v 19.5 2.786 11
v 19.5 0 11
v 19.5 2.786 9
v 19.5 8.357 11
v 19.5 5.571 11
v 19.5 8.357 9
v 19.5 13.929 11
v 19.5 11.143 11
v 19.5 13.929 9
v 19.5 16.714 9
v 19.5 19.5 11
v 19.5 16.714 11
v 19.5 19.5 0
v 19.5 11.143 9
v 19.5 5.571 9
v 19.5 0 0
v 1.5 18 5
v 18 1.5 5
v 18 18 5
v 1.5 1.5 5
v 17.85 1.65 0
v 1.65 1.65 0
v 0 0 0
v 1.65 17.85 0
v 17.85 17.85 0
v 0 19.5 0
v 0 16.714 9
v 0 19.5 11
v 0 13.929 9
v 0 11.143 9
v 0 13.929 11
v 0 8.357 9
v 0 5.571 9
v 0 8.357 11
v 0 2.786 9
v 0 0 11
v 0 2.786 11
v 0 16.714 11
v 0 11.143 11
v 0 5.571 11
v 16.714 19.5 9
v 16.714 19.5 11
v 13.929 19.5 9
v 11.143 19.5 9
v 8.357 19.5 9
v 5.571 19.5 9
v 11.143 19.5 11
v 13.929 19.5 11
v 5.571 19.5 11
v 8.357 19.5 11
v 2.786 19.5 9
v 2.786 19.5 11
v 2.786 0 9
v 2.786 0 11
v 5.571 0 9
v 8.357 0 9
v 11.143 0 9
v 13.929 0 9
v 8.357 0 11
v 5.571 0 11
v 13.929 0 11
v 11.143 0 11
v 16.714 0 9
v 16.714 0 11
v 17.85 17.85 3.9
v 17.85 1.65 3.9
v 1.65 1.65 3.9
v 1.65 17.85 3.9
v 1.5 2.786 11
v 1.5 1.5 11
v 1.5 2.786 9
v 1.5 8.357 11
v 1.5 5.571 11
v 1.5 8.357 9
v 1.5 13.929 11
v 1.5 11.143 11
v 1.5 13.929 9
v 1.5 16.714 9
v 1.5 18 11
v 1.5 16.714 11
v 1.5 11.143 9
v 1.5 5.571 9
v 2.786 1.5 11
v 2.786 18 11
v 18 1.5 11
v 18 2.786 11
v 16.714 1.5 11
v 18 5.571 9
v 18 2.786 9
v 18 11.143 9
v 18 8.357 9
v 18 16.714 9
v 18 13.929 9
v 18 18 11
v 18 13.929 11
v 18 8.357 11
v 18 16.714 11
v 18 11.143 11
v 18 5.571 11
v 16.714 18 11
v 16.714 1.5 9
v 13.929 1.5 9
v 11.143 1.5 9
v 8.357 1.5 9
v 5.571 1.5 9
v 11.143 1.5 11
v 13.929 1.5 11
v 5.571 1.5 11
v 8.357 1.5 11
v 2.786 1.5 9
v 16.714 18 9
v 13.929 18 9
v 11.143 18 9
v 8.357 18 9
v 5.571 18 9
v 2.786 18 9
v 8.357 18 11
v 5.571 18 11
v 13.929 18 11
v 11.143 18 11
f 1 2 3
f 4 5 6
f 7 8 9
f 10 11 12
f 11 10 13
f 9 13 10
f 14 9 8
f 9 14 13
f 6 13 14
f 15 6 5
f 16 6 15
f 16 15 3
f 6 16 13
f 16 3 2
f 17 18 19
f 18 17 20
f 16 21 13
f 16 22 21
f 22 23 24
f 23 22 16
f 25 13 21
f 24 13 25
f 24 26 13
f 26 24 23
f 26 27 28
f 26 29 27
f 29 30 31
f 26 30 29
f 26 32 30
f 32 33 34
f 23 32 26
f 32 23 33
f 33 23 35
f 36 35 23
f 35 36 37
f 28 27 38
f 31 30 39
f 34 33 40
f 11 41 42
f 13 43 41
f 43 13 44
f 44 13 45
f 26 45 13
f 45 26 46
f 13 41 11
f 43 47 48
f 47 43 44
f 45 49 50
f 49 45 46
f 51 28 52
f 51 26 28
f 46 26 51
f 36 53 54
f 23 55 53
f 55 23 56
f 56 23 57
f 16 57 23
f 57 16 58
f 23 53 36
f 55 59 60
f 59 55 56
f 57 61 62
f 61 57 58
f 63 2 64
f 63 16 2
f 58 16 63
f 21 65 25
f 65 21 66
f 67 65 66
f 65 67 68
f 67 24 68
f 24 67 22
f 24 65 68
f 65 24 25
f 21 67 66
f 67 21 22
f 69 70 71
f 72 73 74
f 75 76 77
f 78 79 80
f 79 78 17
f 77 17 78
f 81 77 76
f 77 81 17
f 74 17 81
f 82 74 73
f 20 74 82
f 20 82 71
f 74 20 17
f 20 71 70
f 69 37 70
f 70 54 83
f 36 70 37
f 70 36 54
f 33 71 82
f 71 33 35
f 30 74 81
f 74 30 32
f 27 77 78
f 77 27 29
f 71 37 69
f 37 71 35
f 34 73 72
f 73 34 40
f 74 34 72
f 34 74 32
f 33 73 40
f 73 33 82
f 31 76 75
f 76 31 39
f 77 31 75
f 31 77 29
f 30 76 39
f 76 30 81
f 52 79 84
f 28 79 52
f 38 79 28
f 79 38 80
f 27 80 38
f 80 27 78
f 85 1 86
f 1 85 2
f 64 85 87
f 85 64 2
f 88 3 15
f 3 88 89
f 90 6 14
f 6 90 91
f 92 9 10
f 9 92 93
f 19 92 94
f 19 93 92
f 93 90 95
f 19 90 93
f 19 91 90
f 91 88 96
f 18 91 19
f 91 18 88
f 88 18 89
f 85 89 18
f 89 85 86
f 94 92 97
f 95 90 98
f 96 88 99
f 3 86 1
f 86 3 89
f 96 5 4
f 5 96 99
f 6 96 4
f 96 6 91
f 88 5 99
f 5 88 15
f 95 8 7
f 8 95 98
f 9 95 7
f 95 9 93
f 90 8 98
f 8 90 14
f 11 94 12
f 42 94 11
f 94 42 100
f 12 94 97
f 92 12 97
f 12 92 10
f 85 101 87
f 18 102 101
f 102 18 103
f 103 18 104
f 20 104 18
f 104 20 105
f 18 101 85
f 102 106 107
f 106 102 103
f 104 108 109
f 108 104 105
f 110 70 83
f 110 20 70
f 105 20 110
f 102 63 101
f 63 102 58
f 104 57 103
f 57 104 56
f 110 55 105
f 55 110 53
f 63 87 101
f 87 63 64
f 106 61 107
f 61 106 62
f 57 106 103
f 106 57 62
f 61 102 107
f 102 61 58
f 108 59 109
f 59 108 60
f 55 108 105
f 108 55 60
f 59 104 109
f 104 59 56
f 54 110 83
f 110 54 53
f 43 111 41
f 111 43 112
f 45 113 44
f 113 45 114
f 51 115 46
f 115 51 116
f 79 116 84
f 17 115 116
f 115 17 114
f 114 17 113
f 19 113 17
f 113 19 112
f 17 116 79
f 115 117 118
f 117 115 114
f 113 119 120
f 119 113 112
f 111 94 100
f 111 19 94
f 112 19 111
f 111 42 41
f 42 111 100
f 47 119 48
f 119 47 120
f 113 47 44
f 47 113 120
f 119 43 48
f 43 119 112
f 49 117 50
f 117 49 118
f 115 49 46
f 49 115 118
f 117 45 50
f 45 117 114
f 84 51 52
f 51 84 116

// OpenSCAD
// file: CommonModules.scad
//    $$$$$$\   $$$$$$\   $$$$$$\  $$\   $$\ $$$$$$\ $$$$$$$\  $$$$$$$$\ 
//    $$  __$$\ $$  __$$\ $$  __$$\ $$ |  $$ |\_$$  _|$$  __$$\ $$  _____|
//    $$ /  $$ |$$ /  \__|$$ /  $$ |$$ |  $$ |  $$ |  $$ |  $$ |$$ |      
//    $$$$$$$$ |$$ |      $$ |  $$ |$$ |  $$ |  $$ |  $$$$$$$  |$$$$$\    
//    $$  __$$ |$$ |      $$ |  $$ |$$ |  $$ |  $$ |  $$  __$$< $$  __|   
//    $$ |  $$ |$$ |  $$\ $$ $$\$$ |$$ |  $$ |  $$ |  $$ |  $$ |$$ |      
//    $$ |  $$ |\$$$$$$  |\$$$$$$ / \$$$$$$  |$$$$$$\ $$ |  $$ |$$$$$$$$\ 
//    \__|  \__| \______/  \___$$$\  \______/ \______|\__|  \__|\________|
//                            \___|                                      
//      
//       Print and play - OpenScad project - by Bekkalizer - GPLv3
// 
// This file is part of the Acquire stl project.
// Copyright (C) 2025 Bekkalizer
//
// Acquire stl project is free software: you can redistribute it and/or modify
// it under the terms of the GNU General Public License as published
// by the Free Software Foundation, either version 3 of the License,
// or (at your option) any later version.
//
// Acquire stl project is distributed in the hope that it will be useful,
// but WITHOUT ANY WARRANTY; without even the implied warranty of
// MERCHANTABILITY or FITNESS FOR A PARTICULAR PURPOSE. See the
// GNU General Public License for more details.
//
// You should have received a copy of the GNU General Public License
// along with this program. If not, see <https://www.gnu.org/licenses/>.

module cube_with_extruded_bottom( cube_size = [19.5, 19.5, 5] ) {
    //Main build script parameters:
    max_width = 19.2;
    top_lip = 2;
    top_height = 3;
    //Calculated hole size:
    inside_margins = 1;
    hole_width = max_width - 2 * (top_lip) + inside_margins;
    hole_height = top_height + inside_margins;
    
    hole_size = [hole_width, hole_width, hole_height]; // Hole dimensions (same height as cube)
    hole_offset = [(cube_size[0] - hole_size[0]) / 2, (cube_size[1] - hole_size[1]) / 2, -0.1]; // Centered on bottom
    difference() {
        // Main Cube
        cube(cube_size);
        
        // Hole Cube (subtracting from bottom)
        translate(hole_offset)
            cube(hole_size);
    }
}
// main file
//    $$$$$$\   $$$$$$\   $$$$$$\  $$\   $$\ $$$$$$\ $$$$$$$\  $$$$$$$$\ 
//    $$  __$$\ $$  __$$\ $$  __$$\ $$ |  $$ |\_$$  _|$$  __$$\ $$  _____|
//    $$ /  $$ |$$ /  \__|$$ /  $$ |$$ |  $$ |  $$ |  $$ |  $$ |$$ |      
//    $$$$$$$$ |$$ |      $$ |  $$ |$$ |  $$ |  $$ |  $$$$$$$  |$$$$$\    
//    $$  __$$ |$$ |      $$ |  $$ |$$ |  $$ |  $$ |  $$  __$$< $$  __|   
//    $$ |  $$ |$$ |  $$\ $$ $$\$$ |$$ |  $$ |  $$ |  $$ |  $$ |$$ |      
//    $$ |  $$ |\$$$$$$  |\$$$$$$ / \$$$$$$  |$$$$$$\ $$ |  $$ |$$$$$$$$\ 
//    \__|  \__| \______/  \___$$$\  \______/ \______|\__|  \__|\________|
//                            \___|                                      
//      
//       Print and play - OpenScad project - by Bekkalizer - GPLv3
// 
// This file is part of the Acquire stl project.
// Copyright (C) 2025 Bekkalizer
//
// Acquire stl project is free software: you can redistribute it and/or modify
// it under the terms of the GNU General Public License as published
// by the Free Software Foundation, either version 3 of the License,
// or (at your option) any later version.
//
// Acquire stl project is distributed in the hope that it will be useful,
// but WITHOUT ANY WARRANTY; without even the implied warranty of
// MERCHANTABILITY or FITNESS FOR A PARTICULAR PURPOSE. See the
// GNU General Public License for more details.
//
// You should have received a copy of the GNU General Public License
// along with this program. If not, see <https://www.gnu.org/licenses/>.

use <CommonModules.scad>

// ============== Parameters ==============
bottom_width = 19.5;
bottom_height = 5;
wall_width = 1.5;
wall_height = 4;
segments = 3;
segment_height = 2;

module castle_top() {
    cube([wall_width,bottom_width,wall_height]);
    segment_width = bottom_width / (segments * 2 +1);
    translate([0,0,wall_height]) {
        for( i = [0 : segments] ) {
            translate([0,i * segment_width * 2, 0]) {
                cube([wall_width, segment_width, segment_height]);
            }
        }
    }
}

union () {
    cube_with_extruded_bottom([bottom_width, bottom_width, bottom_height]);

    // Draw the castle-like roof
    translate([0,0,bottom_height]) {
        castle_top();
    }
    
    translate([bottom_width - wall_width,0,bottom_height]) {
        castle_top();
    }
    
    rotate([0,0,90]) {
        translate([0,-bottom_width,bottom_height]) {
            castle_top();
        }
        translate([bottom_width-wall_width,-bottom_width,bottom_height]) {
            castle_top();
        }
    }
}
